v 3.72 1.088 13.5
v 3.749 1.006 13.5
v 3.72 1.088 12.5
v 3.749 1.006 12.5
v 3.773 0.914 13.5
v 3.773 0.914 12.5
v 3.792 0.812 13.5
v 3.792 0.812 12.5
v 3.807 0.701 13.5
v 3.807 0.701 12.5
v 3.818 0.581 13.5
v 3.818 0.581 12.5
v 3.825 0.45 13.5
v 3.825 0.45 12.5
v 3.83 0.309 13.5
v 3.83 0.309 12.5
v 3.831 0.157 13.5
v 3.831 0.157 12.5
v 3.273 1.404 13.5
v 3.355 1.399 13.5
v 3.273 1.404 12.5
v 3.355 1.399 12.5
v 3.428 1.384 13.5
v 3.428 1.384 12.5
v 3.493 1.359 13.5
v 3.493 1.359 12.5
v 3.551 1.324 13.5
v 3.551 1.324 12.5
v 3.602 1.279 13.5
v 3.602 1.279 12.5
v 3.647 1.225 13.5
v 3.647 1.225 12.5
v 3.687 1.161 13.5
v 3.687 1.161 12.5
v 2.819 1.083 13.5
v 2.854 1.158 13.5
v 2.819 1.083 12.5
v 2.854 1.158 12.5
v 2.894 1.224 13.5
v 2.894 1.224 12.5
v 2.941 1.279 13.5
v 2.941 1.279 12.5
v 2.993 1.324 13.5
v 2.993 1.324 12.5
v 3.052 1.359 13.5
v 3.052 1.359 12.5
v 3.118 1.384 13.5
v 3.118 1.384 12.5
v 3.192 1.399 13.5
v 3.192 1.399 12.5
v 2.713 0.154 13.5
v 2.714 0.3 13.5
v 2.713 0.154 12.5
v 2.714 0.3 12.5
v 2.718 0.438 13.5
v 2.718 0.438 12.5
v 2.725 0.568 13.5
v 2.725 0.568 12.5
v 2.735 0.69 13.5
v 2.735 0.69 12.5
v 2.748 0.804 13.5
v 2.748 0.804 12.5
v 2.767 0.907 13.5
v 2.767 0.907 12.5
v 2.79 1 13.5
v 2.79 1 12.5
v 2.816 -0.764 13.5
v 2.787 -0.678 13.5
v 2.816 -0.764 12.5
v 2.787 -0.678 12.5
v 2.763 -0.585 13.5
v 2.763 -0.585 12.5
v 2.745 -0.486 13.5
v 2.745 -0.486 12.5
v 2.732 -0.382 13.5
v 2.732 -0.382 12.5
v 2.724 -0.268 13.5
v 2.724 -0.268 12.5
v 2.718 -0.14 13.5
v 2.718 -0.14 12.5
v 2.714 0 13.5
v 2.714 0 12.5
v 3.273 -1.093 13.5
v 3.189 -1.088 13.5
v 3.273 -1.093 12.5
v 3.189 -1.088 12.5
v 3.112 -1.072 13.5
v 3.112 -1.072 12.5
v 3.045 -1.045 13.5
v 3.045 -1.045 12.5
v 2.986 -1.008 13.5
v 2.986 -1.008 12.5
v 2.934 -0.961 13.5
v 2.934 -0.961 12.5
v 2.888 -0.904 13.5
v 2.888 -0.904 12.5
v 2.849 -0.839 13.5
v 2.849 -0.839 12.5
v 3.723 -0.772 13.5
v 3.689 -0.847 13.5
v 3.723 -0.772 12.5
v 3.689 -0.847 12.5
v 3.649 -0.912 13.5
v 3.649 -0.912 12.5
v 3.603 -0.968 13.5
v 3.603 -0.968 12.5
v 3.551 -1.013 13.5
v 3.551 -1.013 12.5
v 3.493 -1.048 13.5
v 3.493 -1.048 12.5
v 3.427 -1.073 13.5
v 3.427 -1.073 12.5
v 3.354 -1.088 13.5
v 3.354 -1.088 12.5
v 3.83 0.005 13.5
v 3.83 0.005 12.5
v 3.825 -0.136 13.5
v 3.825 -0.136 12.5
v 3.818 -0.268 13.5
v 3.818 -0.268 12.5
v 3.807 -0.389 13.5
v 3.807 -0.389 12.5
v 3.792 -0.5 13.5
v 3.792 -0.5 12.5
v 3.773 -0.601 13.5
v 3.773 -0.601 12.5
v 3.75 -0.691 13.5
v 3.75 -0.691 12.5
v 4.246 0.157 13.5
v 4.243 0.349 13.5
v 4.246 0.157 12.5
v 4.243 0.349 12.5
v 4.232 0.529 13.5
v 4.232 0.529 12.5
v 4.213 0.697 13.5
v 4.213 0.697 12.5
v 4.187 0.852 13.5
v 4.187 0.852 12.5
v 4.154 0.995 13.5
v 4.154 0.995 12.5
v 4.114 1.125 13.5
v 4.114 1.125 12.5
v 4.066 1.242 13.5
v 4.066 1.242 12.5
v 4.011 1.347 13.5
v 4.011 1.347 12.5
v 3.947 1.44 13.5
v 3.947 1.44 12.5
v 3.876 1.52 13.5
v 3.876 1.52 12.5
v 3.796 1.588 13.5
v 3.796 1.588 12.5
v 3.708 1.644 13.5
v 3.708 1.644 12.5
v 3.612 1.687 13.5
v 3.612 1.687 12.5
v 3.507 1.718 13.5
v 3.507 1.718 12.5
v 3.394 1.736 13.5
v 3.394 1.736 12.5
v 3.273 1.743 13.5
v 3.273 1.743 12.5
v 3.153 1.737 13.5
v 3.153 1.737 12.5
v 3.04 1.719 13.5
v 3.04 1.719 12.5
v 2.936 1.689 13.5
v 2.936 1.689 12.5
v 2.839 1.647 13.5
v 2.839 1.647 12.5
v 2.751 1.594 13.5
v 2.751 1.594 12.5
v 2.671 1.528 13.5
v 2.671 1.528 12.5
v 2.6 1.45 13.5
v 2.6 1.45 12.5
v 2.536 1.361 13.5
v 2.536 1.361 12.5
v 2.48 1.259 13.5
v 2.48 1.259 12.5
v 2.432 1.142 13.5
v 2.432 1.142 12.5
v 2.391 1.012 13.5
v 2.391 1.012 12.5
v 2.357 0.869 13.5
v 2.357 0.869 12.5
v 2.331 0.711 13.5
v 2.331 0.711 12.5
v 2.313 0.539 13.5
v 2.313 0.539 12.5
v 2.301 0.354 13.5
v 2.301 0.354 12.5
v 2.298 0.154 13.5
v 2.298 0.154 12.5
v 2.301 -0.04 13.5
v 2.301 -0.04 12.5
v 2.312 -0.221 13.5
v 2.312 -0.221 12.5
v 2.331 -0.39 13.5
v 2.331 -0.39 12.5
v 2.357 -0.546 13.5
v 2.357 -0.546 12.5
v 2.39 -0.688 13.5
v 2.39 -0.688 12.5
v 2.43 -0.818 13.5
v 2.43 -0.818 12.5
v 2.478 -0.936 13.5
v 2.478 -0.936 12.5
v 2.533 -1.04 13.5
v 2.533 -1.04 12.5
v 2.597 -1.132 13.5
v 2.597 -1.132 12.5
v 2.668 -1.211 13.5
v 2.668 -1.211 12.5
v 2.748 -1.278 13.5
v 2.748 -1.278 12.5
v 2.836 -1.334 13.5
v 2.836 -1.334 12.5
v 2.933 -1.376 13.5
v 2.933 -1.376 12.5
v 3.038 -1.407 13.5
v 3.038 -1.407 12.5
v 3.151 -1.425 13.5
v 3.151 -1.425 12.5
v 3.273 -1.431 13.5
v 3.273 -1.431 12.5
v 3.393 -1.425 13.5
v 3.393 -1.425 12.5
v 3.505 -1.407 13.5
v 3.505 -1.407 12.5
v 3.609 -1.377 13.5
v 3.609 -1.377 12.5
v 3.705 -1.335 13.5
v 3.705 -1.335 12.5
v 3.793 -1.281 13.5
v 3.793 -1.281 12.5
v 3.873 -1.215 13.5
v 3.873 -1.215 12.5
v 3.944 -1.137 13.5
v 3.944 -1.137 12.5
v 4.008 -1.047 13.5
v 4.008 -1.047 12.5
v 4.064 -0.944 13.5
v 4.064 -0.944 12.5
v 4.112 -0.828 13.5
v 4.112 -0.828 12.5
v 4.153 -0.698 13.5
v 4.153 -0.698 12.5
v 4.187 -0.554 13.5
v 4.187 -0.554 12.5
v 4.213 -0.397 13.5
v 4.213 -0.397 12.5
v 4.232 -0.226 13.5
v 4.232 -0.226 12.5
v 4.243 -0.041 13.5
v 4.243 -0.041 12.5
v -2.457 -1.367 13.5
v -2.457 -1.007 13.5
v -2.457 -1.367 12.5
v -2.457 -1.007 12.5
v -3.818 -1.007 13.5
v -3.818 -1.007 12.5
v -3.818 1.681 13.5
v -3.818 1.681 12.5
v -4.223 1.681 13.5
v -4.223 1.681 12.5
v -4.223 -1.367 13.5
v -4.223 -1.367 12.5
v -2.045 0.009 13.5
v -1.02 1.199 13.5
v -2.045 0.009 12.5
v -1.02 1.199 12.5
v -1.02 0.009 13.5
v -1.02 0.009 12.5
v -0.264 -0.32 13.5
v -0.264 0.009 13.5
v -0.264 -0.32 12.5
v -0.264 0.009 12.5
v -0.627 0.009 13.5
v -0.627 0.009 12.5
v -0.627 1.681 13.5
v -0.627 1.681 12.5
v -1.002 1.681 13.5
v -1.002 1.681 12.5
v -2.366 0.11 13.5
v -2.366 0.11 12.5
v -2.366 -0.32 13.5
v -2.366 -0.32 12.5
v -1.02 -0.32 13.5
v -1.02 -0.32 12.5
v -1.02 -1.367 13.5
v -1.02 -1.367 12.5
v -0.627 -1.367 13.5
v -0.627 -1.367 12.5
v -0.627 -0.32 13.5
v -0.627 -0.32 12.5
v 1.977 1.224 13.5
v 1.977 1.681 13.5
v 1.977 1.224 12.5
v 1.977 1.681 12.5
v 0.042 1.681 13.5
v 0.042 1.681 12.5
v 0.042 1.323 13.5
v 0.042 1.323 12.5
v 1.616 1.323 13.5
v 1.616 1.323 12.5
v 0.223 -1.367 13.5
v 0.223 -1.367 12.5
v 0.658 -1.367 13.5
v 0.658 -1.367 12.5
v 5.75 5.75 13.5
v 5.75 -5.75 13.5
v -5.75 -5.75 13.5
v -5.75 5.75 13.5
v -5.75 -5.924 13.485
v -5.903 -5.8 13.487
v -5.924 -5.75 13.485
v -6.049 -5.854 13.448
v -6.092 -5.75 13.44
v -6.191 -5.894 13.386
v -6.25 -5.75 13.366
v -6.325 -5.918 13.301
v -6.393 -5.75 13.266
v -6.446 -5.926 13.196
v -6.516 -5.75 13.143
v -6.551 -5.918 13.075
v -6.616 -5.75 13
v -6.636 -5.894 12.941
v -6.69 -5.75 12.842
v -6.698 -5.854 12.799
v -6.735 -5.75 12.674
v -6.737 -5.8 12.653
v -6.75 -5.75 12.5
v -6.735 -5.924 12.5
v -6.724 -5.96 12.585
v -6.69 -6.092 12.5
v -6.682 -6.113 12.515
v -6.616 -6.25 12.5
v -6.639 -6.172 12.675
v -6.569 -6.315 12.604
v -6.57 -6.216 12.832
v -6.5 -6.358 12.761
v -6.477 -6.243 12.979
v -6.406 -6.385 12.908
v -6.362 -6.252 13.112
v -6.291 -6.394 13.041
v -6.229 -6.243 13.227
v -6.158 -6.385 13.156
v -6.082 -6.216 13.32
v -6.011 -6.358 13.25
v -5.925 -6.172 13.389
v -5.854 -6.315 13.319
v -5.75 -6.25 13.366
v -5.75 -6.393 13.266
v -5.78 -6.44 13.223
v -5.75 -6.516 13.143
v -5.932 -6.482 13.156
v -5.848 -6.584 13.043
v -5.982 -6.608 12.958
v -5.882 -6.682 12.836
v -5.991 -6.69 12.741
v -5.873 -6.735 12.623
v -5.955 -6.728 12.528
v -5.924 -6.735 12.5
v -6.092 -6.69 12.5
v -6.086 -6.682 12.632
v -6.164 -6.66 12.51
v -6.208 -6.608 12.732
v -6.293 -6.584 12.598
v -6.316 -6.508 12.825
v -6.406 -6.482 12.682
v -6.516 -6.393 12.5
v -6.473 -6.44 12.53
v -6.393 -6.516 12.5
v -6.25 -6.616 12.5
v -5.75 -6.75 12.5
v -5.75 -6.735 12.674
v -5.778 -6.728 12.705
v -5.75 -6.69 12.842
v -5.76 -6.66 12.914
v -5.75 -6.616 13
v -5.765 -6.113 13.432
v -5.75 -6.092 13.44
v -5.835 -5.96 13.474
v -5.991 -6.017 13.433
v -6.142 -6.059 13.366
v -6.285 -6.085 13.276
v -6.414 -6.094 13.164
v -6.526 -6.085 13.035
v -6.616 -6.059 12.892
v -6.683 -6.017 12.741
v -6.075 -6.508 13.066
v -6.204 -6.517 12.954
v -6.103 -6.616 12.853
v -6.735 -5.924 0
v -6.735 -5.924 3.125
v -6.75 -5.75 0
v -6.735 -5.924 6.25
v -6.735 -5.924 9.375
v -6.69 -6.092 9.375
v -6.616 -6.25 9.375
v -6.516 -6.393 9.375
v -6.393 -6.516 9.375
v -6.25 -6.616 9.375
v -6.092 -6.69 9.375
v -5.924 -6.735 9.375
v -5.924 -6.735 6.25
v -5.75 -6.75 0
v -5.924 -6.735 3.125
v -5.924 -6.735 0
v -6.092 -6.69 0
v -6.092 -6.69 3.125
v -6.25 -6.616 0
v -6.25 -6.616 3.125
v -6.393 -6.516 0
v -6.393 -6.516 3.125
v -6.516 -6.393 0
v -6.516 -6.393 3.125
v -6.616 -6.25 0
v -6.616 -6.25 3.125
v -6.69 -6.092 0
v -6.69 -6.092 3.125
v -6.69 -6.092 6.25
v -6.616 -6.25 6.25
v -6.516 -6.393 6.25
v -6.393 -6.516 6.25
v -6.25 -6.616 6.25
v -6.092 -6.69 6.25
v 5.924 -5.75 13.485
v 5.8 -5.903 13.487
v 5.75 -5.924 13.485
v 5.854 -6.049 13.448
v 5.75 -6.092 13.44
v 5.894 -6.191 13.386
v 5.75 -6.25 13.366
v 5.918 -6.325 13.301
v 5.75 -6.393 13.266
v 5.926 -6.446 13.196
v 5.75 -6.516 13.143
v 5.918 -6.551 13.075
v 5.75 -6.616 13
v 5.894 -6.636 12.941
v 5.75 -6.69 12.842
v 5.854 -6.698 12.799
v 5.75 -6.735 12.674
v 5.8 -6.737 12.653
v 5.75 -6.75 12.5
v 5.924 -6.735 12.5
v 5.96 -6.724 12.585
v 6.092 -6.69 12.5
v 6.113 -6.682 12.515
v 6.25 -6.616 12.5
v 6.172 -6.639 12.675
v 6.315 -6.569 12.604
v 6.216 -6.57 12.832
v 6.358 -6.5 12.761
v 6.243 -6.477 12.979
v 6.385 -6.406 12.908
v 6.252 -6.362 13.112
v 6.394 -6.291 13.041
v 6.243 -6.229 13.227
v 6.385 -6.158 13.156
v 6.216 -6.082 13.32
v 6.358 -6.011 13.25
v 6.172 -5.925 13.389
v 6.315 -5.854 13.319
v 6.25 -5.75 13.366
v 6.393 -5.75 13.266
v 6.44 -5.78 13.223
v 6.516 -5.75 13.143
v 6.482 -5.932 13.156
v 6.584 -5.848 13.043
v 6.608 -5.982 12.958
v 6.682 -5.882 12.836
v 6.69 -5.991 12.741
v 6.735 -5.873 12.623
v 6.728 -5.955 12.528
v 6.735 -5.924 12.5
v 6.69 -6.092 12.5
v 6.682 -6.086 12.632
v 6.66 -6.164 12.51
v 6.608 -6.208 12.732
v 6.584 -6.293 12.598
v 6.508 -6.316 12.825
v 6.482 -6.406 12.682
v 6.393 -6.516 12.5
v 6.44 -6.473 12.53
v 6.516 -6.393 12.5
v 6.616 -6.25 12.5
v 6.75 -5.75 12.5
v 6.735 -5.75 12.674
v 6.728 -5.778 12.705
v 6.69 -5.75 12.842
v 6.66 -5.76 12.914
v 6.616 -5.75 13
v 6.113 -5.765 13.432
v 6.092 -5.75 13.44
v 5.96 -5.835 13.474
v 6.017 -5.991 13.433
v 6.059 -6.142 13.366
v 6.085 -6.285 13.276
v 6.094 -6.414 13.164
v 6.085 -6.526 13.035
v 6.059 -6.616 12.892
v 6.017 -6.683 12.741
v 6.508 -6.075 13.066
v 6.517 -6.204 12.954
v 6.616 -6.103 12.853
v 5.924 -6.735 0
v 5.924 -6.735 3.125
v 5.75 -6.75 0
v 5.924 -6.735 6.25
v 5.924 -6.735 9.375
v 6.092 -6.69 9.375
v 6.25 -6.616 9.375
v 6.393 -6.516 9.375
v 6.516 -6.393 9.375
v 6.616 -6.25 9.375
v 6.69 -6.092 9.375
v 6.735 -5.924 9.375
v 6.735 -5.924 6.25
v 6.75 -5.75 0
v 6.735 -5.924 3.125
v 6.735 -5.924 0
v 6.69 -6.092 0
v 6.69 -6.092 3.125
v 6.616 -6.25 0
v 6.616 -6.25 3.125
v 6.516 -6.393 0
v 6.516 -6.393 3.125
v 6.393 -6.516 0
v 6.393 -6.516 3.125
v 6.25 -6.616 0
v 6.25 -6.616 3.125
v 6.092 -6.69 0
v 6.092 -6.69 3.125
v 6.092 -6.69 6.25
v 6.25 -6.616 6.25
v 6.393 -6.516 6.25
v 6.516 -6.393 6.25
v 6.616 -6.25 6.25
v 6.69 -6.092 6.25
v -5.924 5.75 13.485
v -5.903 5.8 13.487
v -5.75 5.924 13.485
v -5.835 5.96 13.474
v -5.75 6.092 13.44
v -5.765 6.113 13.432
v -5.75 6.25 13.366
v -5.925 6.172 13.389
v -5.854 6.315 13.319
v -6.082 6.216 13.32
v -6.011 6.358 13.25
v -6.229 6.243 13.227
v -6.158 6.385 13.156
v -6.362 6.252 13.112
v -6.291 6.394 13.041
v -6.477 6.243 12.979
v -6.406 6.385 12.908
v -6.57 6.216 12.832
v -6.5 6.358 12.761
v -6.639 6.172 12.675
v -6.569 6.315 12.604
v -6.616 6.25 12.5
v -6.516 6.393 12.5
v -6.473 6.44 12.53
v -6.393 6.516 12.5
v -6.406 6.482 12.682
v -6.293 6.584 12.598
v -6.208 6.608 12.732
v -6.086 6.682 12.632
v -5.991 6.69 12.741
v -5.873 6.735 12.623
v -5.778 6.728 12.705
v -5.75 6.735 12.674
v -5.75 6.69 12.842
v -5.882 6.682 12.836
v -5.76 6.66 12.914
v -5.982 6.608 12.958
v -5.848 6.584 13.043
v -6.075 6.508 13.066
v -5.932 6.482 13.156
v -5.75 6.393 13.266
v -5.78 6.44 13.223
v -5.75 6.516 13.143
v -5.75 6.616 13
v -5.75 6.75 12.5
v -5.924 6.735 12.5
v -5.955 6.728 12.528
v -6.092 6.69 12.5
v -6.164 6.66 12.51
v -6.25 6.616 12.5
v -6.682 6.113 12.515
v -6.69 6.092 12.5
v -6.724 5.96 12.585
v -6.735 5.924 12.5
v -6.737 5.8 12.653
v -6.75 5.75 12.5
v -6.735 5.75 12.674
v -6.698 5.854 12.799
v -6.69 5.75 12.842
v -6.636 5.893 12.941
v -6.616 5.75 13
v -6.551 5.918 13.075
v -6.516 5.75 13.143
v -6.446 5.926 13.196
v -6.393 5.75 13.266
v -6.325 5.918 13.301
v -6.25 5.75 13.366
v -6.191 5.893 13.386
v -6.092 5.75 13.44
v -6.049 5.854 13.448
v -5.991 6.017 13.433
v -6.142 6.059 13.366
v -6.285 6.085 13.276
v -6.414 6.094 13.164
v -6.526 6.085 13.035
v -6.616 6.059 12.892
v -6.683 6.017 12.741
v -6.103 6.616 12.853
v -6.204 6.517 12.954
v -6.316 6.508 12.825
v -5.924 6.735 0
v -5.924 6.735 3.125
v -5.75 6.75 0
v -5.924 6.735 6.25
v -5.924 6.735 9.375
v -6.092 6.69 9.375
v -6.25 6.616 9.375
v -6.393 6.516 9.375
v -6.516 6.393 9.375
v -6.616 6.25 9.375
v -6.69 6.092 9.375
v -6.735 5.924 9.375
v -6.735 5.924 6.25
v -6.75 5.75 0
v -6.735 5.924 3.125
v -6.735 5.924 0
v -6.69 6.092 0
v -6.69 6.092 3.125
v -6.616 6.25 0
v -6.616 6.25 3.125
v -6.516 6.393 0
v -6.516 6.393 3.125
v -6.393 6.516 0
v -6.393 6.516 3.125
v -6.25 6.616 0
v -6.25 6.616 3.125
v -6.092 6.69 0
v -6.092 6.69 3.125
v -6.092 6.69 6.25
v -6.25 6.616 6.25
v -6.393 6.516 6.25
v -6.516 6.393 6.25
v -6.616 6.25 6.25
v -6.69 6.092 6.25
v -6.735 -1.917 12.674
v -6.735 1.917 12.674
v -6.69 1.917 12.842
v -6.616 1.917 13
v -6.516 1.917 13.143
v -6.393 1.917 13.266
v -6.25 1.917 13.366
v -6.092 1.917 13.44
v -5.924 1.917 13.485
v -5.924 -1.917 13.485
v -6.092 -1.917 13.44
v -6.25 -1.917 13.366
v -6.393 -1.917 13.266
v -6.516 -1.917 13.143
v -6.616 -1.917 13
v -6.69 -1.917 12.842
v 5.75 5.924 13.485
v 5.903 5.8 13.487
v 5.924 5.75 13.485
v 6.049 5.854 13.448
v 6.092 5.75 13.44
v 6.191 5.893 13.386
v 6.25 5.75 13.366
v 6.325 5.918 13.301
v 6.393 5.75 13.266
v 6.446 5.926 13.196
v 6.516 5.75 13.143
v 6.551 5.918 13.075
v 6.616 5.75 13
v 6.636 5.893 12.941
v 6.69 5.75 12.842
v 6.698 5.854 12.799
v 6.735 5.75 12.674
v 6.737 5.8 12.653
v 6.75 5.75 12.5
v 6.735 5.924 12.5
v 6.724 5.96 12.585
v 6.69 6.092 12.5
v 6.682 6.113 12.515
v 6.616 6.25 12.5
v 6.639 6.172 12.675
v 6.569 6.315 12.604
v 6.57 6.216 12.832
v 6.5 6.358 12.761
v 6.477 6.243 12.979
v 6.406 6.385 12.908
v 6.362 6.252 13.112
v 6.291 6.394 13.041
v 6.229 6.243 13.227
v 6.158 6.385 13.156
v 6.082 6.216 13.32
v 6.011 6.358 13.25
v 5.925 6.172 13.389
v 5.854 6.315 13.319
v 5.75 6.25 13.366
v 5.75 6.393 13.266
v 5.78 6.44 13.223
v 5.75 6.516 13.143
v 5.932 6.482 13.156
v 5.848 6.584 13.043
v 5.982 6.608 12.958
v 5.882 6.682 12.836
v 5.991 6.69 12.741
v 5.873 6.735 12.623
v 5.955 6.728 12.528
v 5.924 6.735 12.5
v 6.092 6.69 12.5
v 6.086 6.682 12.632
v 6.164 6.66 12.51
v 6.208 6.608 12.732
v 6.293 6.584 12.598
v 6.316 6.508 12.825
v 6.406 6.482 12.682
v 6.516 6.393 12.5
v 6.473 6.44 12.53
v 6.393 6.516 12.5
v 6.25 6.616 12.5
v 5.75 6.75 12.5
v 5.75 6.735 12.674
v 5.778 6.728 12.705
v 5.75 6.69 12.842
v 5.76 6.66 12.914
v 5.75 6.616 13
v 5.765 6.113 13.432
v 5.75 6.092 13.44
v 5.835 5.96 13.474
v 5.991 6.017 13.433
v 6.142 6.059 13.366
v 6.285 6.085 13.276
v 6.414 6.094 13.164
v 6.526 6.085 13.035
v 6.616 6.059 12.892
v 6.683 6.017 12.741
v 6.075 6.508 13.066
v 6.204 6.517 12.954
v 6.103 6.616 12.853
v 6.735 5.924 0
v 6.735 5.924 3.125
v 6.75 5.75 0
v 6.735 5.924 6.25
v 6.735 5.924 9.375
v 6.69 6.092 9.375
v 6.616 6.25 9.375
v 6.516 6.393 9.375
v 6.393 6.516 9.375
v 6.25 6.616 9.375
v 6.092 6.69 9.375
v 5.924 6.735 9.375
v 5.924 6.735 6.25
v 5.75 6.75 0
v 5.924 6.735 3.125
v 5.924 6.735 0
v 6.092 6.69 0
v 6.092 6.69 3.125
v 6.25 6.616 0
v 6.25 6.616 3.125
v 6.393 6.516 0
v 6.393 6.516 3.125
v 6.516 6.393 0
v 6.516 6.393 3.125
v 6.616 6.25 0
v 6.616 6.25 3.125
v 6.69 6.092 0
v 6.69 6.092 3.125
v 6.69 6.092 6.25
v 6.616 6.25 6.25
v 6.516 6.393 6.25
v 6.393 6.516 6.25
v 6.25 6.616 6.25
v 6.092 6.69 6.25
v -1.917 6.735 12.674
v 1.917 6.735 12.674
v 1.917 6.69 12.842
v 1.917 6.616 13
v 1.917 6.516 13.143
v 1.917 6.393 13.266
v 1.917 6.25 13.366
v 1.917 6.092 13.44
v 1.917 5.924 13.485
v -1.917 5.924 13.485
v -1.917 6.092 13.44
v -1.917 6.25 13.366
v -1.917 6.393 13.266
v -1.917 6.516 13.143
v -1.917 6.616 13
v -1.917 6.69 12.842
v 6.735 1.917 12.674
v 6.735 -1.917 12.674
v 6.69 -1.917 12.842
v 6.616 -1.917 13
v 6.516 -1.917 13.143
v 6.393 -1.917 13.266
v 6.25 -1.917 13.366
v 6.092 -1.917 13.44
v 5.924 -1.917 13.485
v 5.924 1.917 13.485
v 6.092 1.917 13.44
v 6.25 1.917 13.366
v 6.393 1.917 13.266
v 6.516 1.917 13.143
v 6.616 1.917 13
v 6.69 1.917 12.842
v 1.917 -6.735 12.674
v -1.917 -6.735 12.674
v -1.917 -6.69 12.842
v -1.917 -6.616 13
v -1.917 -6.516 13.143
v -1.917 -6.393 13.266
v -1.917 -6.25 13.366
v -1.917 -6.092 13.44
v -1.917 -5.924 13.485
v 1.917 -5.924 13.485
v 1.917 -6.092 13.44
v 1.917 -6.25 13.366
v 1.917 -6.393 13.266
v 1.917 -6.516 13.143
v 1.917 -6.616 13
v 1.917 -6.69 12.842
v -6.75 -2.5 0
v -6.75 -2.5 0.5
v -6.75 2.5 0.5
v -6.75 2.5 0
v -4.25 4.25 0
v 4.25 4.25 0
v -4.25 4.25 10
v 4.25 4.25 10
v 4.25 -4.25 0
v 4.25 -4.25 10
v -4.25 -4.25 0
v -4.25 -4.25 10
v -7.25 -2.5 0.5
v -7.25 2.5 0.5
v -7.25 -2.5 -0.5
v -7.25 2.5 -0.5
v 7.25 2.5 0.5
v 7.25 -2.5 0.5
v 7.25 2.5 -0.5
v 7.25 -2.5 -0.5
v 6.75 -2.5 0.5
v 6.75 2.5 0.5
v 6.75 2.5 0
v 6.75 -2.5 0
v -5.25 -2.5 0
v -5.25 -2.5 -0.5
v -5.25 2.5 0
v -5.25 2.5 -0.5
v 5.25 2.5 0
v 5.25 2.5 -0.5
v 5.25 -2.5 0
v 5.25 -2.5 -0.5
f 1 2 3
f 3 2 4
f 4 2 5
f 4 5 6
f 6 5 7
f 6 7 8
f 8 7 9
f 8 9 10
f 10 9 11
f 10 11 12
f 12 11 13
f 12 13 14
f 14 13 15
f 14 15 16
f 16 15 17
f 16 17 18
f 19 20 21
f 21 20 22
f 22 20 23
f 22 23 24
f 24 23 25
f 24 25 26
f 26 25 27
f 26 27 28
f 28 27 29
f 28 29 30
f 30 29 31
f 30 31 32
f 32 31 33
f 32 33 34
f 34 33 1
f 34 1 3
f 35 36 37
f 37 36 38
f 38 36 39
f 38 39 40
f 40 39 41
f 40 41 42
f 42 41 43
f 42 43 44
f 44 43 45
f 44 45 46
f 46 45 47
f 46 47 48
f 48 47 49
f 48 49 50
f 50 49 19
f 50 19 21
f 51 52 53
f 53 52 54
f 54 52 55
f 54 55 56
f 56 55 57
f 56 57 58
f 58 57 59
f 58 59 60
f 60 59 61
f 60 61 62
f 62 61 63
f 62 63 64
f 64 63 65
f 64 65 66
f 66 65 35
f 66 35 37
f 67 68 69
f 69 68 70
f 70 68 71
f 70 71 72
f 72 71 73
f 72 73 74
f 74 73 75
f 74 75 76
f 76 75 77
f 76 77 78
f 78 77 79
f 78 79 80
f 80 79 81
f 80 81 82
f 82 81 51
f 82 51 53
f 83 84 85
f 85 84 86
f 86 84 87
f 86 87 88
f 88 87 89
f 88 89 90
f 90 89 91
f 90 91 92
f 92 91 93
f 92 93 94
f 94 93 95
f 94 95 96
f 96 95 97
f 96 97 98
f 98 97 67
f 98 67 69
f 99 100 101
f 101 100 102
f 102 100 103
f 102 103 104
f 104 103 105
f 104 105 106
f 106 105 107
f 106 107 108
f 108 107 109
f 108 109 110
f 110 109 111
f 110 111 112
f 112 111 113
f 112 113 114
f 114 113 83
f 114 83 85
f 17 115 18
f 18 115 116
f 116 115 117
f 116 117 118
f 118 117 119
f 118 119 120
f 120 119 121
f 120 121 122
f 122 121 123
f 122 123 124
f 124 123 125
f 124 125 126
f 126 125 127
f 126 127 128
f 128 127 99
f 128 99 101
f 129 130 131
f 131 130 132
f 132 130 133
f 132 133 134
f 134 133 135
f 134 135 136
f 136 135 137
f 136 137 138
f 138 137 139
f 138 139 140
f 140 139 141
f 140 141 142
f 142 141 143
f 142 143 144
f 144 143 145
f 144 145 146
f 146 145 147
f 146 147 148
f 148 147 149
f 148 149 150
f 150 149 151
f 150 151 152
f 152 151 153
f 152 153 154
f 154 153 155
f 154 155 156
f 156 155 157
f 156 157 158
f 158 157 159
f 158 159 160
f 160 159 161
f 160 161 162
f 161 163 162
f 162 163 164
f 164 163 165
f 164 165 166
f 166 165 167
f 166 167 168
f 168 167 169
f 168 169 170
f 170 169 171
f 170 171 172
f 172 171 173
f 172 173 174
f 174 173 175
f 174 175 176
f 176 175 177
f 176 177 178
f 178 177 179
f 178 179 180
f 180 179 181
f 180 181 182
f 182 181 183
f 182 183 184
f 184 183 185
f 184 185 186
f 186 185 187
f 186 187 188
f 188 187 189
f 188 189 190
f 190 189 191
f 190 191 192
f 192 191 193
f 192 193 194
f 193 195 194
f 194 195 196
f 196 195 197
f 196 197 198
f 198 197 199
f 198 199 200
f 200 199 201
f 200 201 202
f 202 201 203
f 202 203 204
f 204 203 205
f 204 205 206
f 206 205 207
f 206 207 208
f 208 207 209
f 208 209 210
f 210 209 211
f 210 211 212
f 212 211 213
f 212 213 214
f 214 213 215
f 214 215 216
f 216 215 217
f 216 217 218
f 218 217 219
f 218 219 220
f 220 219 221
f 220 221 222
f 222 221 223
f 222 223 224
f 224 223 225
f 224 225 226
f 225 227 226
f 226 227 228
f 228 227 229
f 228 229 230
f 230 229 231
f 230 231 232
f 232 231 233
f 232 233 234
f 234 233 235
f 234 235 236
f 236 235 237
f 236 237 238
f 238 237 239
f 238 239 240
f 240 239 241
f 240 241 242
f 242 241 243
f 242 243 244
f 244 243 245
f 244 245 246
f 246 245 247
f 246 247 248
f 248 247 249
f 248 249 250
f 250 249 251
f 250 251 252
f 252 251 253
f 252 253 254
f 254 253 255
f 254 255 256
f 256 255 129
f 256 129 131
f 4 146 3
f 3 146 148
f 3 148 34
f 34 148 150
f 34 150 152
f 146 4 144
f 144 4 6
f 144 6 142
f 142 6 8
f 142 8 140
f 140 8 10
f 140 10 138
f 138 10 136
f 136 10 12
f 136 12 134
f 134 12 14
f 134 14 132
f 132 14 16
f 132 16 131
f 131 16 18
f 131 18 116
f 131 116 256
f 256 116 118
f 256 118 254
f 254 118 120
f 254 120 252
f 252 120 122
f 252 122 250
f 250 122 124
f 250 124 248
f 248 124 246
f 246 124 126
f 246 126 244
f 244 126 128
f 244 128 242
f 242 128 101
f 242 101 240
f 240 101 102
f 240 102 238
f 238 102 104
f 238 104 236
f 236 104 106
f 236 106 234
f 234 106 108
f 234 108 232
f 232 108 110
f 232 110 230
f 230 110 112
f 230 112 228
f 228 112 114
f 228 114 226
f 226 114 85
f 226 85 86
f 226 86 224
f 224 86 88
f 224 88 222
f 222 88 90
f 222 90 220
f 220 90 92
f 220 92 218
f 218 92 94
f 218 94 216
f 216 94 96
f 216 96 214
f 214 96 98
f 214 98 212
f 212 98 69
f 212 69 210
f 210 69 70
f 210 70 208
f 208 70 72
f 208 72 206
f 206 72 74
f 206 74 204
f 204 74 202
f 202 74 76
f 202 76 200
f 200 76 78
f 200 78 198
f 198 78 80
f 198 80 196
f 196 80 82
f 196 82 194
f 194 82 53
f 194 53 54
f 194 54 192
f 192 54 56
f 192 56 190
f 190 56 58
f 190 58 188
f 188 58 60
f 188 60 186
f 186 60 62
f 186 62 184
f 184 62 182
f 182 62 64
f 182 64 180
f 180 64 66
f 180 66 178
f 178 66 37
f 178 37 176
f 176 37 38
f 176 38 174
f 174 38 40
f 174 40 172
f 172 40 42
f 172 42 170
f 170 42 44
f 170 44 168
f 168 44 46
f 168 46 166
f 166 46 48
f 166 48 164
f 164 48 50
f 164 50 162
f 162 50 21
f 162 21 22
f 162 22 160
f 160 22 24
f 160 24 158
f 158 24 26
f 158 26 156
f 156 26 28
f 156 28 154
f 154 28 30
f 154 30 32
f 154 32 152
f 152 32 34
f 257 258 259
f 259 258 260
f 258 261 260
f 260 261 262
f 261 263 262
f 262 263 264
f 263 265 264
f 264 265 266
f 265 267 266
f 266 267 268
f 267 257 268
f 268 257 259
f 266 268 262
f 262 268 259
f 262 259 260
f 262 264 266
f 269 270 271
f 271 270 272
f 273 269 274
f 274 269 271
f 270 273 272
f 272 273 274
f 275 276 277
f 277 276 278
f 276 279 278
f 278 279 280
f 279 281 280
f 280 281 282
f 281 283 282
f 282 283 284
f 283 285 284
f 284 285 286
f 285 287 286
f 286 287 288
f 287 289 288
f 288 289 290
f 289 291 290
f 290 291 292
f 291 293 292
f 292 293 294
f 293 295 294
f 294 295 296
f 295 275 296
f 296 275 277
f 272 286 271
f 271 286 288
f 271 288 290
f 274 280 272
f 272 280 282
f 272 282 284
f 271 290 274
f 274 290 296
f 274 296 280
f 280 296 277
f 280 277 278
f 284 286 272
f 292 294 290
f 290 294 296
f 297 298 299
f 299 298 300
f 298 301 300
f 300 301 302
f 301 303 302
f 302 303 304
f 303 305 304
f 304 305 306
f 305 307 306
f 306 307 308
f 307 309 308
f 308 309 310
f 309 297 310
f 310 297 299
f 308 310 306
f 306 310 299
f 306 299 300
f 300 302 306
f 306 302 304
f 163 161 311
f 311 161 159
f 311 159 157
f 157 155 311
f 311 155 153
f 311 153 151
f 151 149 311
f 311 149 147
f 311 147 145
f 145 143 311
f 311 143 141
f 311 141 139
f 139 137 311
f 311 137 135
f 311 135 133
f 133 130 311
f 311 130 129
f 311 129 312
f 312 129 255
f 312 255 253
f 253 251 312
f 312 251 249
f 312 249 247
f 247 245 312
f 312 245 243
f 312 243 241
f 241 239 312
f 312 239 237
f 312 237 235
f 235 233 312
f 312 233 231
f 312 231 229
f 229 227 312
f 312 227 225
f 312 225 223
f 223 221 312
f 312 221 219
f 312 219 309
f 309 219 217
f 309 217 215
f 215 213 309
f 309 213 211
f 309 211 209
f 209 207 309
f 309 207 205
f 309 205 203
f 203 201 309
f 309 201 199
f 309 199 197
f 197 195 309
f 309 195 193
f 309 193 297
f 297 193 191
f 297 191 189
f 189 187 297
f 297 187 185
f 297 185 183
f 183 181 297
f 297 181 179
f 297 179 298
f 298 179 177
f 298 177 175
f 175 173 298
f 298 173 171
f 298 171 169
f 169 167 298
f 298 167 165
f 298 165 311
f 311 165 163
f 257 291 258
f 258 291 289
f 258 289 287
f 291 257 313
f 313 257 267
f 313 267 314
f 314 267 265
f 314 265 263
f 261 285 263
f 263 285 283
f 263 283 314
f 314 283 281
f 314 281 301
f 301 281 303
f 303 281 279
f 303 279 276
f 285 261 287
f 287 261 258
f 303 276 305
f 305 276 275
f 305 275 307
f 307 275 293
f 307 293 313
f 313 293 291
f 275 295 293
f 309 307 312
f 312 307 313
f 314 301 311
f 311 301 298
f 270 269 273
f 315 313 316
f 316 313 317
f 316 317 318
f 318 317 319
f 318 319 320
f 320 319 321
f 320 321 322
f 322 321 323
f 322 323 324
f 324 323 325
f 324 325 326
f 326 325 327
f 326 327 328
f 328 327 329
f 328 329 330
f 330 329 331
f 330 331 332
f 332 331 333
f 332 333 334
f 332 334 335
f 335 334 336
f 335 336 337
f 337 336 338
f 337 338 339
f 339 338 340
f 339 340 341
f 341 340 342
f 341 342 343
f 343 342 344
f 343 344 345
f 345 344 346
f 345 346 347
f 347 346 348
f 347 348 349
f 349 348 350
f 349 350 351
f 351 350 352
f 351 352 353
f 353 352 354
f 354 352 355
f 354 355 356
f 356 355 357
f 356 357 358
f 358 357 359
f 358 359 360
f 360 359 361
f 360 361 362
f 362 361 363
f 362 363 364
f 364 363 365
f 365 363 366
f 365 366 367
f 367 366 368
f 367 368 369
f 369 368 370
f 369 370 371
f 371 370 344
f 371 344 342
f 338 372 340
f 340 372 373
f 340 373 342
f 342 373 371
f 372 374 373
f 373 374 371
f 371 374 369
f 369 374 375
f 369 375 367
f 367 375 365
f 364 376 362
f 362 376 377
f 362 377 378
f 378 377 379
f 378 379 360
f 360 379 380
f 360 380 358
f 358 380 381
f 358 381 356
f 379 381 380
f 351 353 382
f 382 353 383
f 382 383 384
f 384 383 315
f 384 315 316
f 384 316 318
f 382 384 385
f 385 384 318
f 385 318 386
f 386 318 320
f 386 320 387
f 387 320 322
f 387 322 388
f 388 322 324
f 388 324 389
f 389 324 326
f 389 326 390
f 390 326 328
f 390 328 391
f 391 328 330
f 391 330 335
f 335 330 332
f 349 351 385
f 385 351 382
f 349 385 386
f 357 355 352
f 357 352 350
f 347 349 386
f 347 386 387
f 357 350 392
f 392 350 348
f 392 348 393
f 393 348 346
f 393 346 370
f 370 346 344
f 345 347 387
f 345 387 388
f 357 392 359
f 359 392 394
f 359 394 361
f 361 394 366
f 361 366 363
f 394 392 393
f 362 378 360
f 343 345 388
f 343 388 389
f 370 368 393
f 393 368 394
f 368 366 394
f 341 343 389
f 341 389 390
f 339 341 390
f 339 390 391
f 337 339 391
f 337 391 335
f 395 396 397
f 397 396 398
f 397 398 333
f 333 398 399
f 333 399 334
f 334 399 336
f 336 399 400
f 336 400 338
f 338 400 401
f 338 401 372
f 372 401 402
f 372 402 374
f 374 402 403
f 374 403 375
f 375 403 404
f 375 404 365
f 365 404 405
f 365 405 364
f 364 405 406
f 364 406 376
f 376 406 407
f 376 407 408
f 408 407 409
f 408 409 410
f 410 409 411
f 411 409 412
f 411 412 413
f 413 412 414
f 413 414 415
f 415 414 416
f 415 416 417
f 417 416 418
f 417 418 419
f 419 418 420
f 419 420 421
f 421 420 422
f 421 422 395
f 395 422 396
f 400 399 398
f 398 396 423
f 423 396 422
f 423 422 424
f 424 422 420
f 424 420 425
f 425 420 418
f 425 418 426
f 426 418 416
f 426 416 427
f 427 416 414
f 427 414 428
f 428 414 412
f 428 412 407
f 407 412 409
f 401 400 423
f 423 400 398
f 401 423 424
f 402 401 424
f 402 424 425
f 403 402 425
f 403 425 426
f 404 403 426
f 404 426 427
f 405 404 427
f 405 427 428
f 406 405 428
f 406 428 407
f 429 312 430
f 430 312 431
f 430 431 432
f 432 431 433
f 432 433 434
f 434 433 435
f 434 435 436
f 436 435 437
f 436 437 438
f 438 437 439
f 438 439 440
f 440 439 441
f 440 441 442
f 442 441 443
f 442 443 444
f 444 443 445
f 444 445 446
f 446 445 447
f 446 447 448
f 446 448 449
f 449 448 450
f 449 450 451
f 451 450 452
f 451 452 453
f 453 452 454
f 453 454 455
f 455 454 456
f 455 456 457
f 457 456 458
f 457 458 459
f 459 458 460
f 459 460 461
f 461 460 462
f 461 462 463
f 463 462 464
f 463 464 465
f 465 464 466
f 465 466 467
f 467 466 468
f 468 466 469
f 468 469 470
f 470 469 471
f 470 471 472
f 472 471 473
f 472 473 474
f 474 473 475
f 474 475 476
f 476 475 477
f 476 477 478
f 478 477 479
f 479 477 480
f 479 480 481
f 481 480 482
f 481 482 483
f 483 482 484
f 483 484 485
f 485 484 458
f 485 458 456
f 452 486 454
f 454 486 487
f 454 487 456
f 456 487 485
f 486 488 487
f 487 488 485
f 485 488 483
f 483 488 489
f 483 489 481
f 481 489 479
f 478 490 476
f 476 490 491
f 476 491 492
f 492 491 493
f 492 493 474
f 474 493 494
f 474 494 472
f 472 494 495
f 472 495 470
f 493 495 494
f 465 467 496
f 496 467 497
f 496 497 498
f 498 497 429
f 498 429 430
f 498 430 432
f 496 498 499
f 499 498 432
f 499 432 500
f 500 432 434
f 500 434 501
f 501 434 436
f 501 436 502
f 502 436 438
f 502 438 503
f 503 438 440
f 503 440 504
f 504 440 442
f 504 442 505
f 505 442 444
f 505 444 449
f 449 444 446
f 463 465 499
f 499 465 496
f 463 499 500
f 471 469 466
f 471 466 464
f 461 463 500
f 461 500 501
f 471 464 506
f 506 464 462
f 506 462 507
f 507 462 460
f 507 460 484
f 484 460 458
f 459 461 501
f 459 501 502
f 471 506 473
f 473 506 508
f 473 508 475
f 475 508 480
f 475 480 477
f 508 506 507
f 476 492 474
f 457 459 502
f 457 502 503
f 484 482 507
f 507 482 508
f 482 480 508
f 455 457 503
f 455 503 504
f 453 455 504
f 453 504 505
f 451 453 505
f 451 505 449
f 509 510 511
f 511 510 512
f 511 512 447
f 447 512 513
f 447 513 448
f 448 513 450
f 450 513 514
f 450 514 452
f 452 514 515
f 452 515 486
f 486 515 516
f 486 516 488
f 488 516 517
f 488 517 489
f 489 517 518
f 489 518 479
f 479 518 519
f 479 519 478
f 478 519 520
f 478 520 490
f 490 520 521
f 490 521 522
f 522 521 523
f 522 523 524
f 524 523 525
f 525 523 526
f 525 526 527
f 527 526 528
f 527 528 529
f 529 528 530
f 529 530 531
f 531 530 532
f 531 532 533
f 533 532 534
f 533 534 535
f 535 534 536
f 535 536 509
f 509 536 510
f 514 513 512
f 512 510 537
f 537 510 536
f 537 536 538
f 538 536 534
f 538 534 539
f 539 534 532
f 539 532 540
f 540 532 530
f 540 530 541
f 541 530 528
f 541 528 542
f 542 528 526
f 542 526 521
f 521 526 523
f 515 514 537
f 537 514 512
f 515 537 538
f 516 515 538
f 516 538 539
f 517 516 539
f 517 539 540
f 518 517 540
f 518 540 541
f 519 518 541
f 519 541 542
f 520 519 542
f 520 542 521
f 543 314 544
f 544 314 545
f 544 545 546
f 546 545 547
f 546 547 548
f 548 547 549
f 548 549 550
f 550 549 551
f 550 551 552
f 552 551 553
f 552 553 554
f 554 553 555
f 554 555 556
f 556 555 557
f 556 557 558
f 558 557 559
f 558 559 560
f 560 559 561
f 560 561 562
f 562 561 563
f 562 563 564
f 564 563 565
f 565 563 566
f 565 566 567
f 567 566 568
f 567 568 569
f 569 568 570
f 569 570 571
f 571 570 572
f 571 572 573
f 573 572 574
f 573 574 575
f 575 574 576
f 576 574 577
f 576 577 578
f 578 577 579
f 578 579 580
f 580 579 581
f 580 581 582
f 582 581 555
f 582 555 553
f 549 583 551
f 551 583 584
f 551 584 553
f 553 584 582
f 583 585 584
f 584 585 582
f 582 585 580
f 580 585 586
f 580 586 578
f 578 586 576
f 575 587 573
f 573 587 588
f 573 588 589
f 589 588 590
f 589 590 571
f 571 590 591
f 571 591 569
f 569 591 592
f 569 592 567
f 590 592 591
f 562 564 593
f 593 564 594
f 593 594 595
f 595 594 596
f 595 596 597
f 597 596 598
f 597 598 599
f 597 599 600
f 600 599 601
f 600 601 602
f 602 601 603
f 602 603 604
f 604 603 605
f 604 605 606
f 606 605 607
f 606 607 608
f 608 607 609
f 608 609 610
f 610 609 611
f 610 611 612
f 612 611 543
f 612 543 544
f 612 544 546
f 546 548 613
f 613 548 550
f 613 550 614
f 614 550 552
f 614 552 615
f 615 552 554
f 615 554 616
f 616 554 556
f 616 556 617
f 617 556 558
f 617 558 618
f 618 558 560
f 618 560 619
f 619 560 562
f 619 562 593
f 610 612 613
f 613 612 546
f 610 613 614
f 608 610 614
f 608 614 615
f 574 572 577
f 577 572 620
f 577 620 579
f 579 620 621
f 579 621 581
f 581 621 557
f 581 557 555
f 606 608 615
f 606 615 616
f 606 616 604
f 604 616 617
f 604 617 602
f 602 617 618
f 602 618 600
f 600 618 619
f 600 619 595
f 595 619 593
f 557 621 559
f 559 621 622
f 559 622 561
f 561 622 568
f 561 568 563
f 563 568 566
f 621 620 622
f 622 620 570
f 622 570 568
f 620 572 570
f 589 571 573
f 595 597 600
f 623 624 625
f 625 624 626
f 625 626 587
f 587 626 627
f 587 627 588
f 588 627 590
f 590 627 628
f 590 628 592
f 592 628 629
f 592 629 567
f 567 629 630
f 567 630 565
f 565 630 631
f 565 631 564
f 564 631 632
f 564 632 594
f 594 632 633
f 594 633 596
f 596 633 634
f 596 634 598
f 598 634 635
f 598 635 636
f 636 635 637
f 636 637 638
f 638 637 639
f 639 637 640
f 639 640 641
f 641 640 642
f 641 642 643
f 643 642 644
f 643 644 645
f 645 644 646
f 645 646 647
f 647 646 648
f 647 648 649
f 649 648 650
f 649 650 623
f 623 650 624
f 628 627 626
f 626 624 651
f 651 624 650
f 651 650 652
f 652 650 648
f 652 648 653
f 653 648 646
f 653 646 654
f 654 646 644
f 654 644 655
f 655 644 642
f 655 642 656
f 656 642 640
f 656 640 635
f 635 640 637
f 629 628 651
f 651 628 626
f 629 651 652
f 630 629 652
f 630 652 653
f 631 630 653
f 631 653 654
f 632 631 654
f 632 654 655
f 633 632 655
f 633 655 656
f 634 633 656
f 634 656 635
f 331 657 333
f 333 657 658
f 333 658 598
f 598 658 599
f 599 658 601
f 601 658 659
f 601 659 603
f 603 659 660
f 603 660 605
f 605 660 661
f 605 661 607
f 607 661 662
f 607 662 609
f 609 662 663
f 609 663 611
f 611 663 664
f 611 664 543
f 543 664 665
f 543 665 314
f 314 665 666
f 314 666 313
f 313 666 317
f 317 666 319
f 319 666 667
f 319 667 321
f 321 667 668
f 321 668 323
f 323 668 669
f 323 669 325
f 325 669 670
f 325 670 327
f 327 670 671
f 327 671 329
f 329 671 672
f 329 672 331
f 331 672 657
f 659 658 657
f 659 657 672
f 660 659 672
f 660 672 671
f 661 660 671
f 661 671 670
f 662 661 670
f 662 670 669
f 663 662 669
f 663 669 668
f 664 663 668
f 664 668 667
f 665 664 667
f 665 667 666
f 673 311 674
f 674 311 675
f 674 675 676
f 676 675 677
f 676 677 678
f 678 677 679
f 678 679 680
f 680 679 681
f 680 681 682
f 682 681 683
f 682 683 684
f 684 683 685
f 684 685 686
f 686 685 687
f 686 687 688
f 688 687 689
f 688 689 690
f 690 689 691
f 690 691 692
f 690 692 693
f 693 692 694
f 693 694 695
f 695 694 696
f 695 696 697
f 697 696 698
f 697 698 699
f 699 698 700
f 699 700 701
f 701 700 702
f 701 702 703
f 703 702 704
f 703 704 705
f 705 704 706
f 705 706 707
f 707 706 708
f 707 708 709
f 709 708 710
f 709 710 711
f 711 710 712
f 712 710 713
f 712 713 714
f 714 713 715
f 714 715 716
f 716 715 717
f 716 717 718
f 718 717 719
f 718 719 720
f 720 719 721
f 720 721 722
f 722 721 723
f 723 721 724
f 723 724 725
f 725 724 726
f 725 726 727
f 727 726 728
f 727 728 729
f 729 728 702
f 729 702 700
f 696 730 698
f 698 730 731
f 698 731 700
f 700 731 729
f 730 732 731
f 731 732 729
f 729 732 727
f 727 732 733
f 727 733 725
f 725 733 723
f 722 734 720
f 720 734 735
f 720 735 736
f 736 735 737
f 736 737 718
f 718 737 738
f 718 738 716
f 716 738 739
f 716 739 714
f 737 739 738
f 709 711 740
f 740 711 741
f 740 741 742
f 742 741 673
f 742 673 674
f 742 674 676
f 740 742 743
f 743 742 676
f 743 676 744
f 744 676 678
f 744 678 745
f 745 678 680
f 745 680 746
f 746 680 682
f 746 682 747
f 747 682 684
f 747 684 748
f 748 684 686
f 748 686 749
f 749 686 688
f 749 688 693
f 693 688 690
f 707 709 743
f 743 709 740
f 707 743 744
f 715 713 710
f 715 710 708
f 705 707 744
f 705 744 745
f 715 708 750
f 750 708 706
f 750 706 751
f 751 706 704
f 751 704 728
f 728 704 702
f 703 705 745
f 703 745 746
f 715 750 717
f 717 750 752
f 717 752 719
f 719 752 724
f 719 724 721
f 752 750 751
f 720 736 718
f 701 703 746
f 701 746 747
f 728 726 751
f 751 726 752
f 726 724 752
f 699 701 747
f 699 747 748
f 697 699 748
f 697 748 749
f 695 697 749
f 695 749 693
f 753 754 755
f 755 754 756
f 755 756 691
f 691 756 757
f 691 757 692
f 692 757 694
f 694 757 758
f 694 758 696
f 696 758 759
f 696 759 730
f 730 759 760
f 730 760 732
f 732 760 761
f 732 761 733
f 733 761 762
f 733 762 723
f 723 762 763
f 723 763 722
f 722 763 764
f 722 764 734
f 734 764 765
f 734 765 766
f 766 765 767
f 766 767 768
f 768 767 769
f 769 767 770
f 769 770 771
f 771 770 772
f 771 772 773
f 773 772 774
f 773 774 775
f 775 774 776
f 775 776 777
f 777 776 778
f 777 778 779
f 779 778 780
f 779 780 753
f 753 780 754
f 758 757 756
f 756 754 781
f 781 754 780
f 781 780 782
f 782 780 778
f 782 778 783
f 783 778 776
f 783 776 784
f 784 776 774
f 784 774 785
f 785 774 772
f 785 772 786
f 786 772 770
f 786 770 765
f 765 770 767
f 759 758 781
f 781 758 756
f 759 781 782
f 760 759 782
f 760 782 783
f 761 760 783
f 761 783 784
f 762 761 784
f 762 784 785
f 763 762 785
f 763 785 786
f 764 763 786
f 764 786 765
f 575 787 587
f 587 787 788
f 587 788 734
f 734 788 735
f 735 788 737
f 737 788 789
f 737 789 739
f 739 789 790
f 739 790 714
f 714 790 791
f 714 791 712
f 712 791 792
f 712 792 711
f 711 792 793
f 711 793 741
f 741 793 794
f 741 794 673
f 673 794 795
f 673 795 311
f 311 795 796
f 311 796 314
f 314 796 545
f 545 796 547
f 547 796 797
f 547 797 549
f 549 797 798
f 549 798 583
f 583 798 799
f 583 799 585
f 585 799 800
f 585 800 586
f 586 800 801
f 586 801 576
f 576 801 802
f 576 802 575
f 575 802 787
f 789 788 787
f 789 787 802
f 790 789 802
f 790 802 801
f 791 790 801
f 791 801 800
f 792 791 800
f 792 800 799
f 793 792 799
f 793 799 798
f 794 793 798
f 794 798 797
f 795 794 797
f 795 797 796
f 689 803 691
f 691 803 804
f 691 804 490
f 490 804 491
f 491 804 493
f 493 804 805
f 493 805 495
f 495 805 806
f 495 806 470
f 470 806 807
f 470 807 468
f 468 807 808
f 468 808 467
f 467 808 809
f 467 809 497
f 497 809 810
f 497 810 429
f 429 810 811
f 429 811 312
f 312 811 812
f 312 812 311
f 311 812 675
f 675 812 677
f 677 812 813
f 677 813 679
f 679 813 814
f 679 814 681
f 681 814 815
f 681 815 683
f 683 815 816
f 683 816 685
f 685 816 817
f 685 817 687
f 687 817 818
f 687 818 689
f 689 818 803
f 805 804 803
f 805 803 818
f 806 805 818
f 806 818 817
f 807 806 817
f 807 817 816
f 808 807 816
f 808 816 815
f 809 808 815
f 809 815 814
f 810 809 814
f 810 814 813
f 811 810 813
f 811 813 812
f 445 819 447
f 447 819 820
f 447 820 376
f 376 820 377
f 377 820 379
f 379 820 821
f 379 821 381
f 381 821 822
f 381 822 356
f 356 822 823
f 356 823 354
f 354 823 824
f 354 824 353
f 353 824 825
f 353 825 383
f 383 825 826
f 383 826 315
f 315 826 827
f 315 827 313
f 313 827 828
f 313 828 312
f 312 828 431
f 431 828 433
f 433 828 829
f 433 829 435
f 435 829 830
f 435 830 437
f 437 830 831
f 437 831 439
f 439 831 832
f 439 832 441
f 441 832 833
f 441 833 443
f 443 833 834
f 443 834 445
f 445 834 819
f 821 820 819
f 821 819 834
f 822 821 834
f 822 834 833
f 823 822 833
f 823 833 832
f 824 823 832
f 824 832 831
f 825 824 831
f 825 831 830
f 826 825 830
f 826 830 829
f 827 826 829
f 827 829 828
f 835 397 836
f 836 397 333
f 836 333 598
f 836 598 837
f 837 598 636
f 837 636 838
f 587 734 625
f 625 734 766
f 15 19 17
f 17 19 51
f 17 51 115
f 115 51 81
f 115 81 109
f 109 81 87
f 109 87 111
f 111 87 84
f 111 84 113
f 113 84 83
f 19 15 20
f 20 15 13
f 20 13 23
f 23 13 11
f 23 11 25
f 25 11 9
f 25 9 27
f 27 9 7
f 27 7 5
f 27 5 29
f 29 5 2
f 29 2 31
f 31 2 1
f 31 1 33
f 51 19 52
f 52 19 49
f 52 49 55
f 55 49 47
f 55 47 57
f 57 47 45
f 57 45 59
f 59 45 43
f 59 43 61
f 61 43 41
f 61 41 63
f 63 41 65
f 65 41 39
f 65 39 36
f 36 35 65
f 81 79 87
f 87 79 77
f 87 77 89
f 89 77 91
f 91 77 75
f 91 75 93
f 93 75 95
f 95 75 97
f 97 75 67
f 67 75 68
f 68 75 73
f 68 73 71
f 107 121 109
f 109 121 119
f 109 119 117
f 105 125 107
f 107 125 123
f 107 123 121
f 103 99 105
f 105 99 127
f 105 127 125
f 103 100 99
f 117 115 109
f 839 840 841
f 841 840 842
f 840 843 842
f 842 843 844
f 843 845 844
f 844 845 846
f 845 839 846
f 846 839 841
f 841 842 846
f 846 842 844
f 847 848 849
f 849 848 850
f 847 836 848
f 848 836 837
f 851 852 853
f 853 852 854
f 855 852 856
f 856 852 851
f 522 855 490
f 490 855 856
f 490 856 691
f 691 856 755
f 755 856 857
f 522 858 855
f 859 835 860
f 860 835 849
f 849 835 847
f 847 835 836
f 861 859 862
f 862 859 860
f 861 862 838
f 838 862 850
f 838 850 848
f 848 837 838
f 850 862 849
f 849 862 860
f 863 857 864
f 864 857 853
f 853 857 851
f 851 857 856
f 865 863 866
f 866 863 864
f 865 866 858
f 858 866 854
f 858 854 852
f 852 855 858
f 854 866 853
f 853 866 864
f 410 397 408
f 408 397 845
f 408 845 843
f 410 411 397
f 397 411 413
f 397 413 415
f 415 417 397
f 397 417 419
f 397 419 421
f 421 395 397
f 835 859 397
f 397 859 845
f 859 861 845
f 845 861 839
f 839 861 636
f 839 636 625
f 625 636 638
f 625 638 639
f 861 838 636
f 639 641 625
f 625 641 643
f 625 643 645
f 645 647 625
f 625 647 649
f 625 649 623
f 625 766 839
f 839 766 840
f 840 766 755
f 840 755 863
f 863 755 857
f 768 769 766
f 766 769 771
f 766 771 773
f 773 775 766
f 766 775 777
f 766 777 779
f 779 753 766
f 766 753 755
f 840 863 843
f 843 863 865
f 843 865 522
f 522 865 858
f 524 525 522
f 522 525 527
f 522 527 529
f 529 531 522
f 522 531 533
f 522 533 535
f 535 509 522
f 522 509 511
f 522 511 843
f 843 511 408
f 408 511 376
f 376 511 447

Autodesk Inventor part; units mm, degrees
ref_plane "YZ Plane" through (0, 0, 0) normal (1, 0, 0) x (0, 1, 0)
ref_plane "XZ Plane" through (0, 0, 0) normal (0, 1, 0) x (-1, 0, 0)
ref_plane "XY Plane" through (0, 0, 0) normal (0, 0, 1) x (1, 0, 0)
sketch "Sketch2" plane through (0, 0, 0) normal (0, 0, 1) x (1, 0, 0)
  line L0 (-6.75, -6.75) -> (6.75, -6.75)
  line L1 (6.75, -6.75) -> (6.75, 6.75)
  line L2 (6.75, 6.75) -> (-6.75, 6.75)
  line L3 (-6.75, 6.75) -> (-6.75, -6.75)
  line L4 (-6.75, -6.75) -> (6.75, 6.75) construction
  line L5 (6.75, -6.75) -> (-6.75, 6.75) construction
  line L6 (-6.75, -6.75) -> (6.75, -6.75) construction
  line L7 (6.75, -6.75) -> (6.75, -2.5) construction
  line L8 (6.75, -2.5) -> (-6.75, -2.5) construction
  line L9 (-6.75, -2.5) -> (-6.75, -6.75) construction
  line L10 (-7.25, -2.5) -> (7.25, -2.5)
  line L11 (7.25, -2.5) -> (7.25, 2.5)
  line L12 (7.25, 2.5) -> (-7.25, 2.5)
  line L13 (-7.25, 2.5) -> (-7.25, -2.5)
  line L14 (-7.25, 2.5) -> (-5.25, 2.5)
  line L15 (-5.25, 2.5) -> (-5.25, -2.5)
  line L16 (-5.25, -2.5) -> (-7.25, -2.5)
  line L17 (-7.25, -2.5) -> (-7.25, 2.5)
  line L18 (7.25, 2.5) -> (5.25, 2.5)
  line L19 (5.25, 2.5) -> (5.25, -2.5)
  line L20 (5.25, -2.5) -> (7.25, -2.5)
  line L21 (7.25, -2.5) -> (7.25, 2.5)
  line L22 (4.25, -4.25) -> (-4.25, -4.25)
  line L23 (-4.25, -4.25) -> (-4.25, 4.25)
  line L24 (-4.25, 4.25) -> (4.25, 4.25)
  line L25 (4.25, 4.25) -> (4.25, -4.25)
  line L26 (4.25, -4.25) -> (-4.25, 4.25) construction
  line L27 (-4.25, -4.25) -> (4.25, 4.25) construction
  point P0 (0, 0)
  point P1 (0, -2.5)
  point P2 (-6.75, 2.5)
  point P3 (6.75, -2.5)
  point P4 (6.75, 2.5)
  dimension "d2" = 13.5
  dimension "d4" = 4.25
  dimension "d5" = 5
  dimension "d6" = 0.5
  dimension "d7" = 0.5
  dimension "d8" = 2
  dimension "d9" = 2
  dimension "d16" = 8.5
extrude "Extrusion2" add sketch "Sketch2" along normal blind 13.5 contours L3 L10 L23 L22 L25 L1 L0 | L3 L12 L15 L10 | L10 L19 L12 L1 | L3 L2 L1 L12 L25 L24 L23 | L15 L12 L23 L10 | L10 L25 L12 L19 | L23 L12 L25 L10 | L10 L25 L22 L23 | L23 L24 L25 L12
extrude "Extrusion3" add sketch "Sketch2" against normal blind 0.5 contours L3 L12 L15 L10 | L10 L19 L12 L1
extrude "Extrusion4" add sketch "Sketch2" along normal mid plane 1 contours L10 L13 L12 L3 | L1 L12 L11 L10
extrude "Extrusion5" cut sketch "Sketch2" along normal blind 10 contours L23 L12 L25 L10 | L10 L25 L22 L23 | L23 L24 L25 L12
sketch "Sketch3" plane through (0, 0, 13.5) normal (0, 0, 1) x (1, 0, 0)
  line L0 (-4.532, 1.7426) -> (3.9775, 1.7426) construction
  line L1 (3.9775, 1.7426) -> (3.9775, -2.8625) construction
  line L2 (3.9775, -2.8625) -> (-4.532, -2.8625) construction
  line L3 (-4.532, -2.8625) -> (-4.532, 1.7426) construction
  line L4 (-2.4572, -1.3672) -> (-4.2232, -1.3672)
  line L5 (-4.2232, -1.3672) -> (-4.2232, 1.6808)
  line L6 (-4.2232, 1.6808) -> (-3.8182, 1.6808)
  line L7 (-3.8182, 1.6808) -> (-3.8182, -1.0065)
  line L8 (-3.8182, -1.0065) -> (-2.4572, -1.0065)
  line L9 (-2.4572, -1.0065) -> (-2.4572, -1.3672)
  line L10 (-0.2638, -0.3199) -> (-0.6269, -0.3199)
  line L11 (-0.6269, -0.3199) -> (-0.6269, -1.3672)
  line L12 (-0.6269, -1.3672) -> (-1.0196, -1.3672)
  line L13 (-1.0196, -1.3672) -> (-1.0196, -0.3199)
  line L14 (-1.0196, -0.3199) -> (-2.3658, -0.3199)
  line L15 (-2.3658, -0.3199) -> (-2.3658, 0.1099)
  line L16 (-2.3658, 0.1099) -> (-1.0023, 1.6808)
  line L17 (-1.0023, 1.6808) -> (-0.6269, 1.6808)
  line L18 (-0.6269, 1.6808) -> (-0.6269, 0.0086)
  line L19 (-0.6269, 0.0086) -> (-0.2638, 0.0086)
  line L20 (-0.2638, 0.0086) -> (-0.2638, -0.3199)
  line L21 (-1.0196, 0.0086) -> (-1.0196, 1.1992)
  line L22 (-1.0196, 1.1992) -> (-2.0447, 0.0086)
  line L23 (-2.0447, 0.0086) -> (-1.0196, 0.0086)
  line L24 (1.9765, 1.2239) -> (0.6575, -1.3672)
  line L25 (0.6575, -1.3672) -> (0.2228, -1.3672)
  line L26 (0.2228, -1.3672) -> (1.6159, 1.3227)
  line L27 (1.6159, 1.3227) -> (0.0425, 1.3227)
  line L28 (0.0425, 1.3227) -> (0.0425, 1.6808)
  line L29 (0.0425, 1.6808) -> (1.9765, 1.6808)
  line L30 (1.9765, 1.6808) -> (1.9765, 1.2239)
  spline S0 degree 2 poles (4.2464, 0.1568) (4.2464, -0.6632) (3.7697, -1.4314) (3.2733, -1.4314) knots 0 0 0 1 2 2 2
  spline S1 degree 2 poles (3.2733, -1.4314) (2.7694, -1.4314) (2.2976, -0.6484) (2.2976, 0.1544) knots 0 0 0 1 2 2 2
  spline S2 degree 2 poles (2.2976, 0.1544) (2.2976, 0.9794) (2.7743, 1.7426) (3.2733, 1.7426) knots 0 0 0 1 2 2 2
  spline S3 degree 2 poles (3.2733, 1.7426) (3.7747, 1.7426) (4.2464, 0.9522) (4.2464, 0.1568) knots 0 0 0 1 2 2 2
  spline S4 degree 2 poles (3.7228, -0.7719) (3.7821, -0.6212) (3.8315, -0.1569) (3.8315, 0.1568) knots 0 0 0 1 2 2 2
  spline S5 degree 2 poles (3.8315, 0.1568) (3.8315, 0.4705) (3.7821, 0.9324) (3.7203, 1.088) knots 0 0 0 1 2 2 2
  spline S6 degree 2 poles (3.7203, 1.088) (3.6586, 1.2436) (3.4437, 1.4042) (3.2733, 1.4042) knots 0 0 0 1 2 2 2
  spline S7 degree 2 poles (3.2733, 1.4042) (3.1028, 1.4042) (2.883, 1.2436) (2.8188, 1.0831) knots 0 0 0 1 2 2 2
  spline S8 degree 2 poles (2.8188, 1.0831) (2.757, 0.9275) (2.7126, 0.4532) (2.7126, 0.1544) knots 0 0 0 1 2 2 2
  spline S9 degree 2 poles (2.7126, 0.1544) (2.7126, -0.1667) (2.7521, -0.5965) (2.8163, -0.7645) knots 0 0 0 1 2 2 2
  spline S10 degree 2 poles (2.8163, -0.7645) (2.8756, -0.9226) (3.0954, -1.093) (3.2733, -1.093) knots 0 0 0 1 2 2 2
  spline S11 degree 2 poles (3.2733, -1.093) (3.4412, -1.093) (3.6611, -0.9324) (3.7228, -0.7719) knots 0 0 0 1 2 2 2
  point P0 (0, 0)
fillet "Fillet1" radius 1 8 edges at (0, 6.75, 13.5) (-6.75, 0, 13.5) (0, -6.75, 13.5) (6.75, 0, 13.5) (-6.75, 6.75, 6.75) (-6.75, -6.75, 6.75) (6.75, 6.75, 6.75) (6.75, -6.75, 6.75)
extrude "Extrusion7" cut sketch "Sketch3" against normal blind 1
properties part number "SINC1313-470_L470_SMD_3DPrint"
